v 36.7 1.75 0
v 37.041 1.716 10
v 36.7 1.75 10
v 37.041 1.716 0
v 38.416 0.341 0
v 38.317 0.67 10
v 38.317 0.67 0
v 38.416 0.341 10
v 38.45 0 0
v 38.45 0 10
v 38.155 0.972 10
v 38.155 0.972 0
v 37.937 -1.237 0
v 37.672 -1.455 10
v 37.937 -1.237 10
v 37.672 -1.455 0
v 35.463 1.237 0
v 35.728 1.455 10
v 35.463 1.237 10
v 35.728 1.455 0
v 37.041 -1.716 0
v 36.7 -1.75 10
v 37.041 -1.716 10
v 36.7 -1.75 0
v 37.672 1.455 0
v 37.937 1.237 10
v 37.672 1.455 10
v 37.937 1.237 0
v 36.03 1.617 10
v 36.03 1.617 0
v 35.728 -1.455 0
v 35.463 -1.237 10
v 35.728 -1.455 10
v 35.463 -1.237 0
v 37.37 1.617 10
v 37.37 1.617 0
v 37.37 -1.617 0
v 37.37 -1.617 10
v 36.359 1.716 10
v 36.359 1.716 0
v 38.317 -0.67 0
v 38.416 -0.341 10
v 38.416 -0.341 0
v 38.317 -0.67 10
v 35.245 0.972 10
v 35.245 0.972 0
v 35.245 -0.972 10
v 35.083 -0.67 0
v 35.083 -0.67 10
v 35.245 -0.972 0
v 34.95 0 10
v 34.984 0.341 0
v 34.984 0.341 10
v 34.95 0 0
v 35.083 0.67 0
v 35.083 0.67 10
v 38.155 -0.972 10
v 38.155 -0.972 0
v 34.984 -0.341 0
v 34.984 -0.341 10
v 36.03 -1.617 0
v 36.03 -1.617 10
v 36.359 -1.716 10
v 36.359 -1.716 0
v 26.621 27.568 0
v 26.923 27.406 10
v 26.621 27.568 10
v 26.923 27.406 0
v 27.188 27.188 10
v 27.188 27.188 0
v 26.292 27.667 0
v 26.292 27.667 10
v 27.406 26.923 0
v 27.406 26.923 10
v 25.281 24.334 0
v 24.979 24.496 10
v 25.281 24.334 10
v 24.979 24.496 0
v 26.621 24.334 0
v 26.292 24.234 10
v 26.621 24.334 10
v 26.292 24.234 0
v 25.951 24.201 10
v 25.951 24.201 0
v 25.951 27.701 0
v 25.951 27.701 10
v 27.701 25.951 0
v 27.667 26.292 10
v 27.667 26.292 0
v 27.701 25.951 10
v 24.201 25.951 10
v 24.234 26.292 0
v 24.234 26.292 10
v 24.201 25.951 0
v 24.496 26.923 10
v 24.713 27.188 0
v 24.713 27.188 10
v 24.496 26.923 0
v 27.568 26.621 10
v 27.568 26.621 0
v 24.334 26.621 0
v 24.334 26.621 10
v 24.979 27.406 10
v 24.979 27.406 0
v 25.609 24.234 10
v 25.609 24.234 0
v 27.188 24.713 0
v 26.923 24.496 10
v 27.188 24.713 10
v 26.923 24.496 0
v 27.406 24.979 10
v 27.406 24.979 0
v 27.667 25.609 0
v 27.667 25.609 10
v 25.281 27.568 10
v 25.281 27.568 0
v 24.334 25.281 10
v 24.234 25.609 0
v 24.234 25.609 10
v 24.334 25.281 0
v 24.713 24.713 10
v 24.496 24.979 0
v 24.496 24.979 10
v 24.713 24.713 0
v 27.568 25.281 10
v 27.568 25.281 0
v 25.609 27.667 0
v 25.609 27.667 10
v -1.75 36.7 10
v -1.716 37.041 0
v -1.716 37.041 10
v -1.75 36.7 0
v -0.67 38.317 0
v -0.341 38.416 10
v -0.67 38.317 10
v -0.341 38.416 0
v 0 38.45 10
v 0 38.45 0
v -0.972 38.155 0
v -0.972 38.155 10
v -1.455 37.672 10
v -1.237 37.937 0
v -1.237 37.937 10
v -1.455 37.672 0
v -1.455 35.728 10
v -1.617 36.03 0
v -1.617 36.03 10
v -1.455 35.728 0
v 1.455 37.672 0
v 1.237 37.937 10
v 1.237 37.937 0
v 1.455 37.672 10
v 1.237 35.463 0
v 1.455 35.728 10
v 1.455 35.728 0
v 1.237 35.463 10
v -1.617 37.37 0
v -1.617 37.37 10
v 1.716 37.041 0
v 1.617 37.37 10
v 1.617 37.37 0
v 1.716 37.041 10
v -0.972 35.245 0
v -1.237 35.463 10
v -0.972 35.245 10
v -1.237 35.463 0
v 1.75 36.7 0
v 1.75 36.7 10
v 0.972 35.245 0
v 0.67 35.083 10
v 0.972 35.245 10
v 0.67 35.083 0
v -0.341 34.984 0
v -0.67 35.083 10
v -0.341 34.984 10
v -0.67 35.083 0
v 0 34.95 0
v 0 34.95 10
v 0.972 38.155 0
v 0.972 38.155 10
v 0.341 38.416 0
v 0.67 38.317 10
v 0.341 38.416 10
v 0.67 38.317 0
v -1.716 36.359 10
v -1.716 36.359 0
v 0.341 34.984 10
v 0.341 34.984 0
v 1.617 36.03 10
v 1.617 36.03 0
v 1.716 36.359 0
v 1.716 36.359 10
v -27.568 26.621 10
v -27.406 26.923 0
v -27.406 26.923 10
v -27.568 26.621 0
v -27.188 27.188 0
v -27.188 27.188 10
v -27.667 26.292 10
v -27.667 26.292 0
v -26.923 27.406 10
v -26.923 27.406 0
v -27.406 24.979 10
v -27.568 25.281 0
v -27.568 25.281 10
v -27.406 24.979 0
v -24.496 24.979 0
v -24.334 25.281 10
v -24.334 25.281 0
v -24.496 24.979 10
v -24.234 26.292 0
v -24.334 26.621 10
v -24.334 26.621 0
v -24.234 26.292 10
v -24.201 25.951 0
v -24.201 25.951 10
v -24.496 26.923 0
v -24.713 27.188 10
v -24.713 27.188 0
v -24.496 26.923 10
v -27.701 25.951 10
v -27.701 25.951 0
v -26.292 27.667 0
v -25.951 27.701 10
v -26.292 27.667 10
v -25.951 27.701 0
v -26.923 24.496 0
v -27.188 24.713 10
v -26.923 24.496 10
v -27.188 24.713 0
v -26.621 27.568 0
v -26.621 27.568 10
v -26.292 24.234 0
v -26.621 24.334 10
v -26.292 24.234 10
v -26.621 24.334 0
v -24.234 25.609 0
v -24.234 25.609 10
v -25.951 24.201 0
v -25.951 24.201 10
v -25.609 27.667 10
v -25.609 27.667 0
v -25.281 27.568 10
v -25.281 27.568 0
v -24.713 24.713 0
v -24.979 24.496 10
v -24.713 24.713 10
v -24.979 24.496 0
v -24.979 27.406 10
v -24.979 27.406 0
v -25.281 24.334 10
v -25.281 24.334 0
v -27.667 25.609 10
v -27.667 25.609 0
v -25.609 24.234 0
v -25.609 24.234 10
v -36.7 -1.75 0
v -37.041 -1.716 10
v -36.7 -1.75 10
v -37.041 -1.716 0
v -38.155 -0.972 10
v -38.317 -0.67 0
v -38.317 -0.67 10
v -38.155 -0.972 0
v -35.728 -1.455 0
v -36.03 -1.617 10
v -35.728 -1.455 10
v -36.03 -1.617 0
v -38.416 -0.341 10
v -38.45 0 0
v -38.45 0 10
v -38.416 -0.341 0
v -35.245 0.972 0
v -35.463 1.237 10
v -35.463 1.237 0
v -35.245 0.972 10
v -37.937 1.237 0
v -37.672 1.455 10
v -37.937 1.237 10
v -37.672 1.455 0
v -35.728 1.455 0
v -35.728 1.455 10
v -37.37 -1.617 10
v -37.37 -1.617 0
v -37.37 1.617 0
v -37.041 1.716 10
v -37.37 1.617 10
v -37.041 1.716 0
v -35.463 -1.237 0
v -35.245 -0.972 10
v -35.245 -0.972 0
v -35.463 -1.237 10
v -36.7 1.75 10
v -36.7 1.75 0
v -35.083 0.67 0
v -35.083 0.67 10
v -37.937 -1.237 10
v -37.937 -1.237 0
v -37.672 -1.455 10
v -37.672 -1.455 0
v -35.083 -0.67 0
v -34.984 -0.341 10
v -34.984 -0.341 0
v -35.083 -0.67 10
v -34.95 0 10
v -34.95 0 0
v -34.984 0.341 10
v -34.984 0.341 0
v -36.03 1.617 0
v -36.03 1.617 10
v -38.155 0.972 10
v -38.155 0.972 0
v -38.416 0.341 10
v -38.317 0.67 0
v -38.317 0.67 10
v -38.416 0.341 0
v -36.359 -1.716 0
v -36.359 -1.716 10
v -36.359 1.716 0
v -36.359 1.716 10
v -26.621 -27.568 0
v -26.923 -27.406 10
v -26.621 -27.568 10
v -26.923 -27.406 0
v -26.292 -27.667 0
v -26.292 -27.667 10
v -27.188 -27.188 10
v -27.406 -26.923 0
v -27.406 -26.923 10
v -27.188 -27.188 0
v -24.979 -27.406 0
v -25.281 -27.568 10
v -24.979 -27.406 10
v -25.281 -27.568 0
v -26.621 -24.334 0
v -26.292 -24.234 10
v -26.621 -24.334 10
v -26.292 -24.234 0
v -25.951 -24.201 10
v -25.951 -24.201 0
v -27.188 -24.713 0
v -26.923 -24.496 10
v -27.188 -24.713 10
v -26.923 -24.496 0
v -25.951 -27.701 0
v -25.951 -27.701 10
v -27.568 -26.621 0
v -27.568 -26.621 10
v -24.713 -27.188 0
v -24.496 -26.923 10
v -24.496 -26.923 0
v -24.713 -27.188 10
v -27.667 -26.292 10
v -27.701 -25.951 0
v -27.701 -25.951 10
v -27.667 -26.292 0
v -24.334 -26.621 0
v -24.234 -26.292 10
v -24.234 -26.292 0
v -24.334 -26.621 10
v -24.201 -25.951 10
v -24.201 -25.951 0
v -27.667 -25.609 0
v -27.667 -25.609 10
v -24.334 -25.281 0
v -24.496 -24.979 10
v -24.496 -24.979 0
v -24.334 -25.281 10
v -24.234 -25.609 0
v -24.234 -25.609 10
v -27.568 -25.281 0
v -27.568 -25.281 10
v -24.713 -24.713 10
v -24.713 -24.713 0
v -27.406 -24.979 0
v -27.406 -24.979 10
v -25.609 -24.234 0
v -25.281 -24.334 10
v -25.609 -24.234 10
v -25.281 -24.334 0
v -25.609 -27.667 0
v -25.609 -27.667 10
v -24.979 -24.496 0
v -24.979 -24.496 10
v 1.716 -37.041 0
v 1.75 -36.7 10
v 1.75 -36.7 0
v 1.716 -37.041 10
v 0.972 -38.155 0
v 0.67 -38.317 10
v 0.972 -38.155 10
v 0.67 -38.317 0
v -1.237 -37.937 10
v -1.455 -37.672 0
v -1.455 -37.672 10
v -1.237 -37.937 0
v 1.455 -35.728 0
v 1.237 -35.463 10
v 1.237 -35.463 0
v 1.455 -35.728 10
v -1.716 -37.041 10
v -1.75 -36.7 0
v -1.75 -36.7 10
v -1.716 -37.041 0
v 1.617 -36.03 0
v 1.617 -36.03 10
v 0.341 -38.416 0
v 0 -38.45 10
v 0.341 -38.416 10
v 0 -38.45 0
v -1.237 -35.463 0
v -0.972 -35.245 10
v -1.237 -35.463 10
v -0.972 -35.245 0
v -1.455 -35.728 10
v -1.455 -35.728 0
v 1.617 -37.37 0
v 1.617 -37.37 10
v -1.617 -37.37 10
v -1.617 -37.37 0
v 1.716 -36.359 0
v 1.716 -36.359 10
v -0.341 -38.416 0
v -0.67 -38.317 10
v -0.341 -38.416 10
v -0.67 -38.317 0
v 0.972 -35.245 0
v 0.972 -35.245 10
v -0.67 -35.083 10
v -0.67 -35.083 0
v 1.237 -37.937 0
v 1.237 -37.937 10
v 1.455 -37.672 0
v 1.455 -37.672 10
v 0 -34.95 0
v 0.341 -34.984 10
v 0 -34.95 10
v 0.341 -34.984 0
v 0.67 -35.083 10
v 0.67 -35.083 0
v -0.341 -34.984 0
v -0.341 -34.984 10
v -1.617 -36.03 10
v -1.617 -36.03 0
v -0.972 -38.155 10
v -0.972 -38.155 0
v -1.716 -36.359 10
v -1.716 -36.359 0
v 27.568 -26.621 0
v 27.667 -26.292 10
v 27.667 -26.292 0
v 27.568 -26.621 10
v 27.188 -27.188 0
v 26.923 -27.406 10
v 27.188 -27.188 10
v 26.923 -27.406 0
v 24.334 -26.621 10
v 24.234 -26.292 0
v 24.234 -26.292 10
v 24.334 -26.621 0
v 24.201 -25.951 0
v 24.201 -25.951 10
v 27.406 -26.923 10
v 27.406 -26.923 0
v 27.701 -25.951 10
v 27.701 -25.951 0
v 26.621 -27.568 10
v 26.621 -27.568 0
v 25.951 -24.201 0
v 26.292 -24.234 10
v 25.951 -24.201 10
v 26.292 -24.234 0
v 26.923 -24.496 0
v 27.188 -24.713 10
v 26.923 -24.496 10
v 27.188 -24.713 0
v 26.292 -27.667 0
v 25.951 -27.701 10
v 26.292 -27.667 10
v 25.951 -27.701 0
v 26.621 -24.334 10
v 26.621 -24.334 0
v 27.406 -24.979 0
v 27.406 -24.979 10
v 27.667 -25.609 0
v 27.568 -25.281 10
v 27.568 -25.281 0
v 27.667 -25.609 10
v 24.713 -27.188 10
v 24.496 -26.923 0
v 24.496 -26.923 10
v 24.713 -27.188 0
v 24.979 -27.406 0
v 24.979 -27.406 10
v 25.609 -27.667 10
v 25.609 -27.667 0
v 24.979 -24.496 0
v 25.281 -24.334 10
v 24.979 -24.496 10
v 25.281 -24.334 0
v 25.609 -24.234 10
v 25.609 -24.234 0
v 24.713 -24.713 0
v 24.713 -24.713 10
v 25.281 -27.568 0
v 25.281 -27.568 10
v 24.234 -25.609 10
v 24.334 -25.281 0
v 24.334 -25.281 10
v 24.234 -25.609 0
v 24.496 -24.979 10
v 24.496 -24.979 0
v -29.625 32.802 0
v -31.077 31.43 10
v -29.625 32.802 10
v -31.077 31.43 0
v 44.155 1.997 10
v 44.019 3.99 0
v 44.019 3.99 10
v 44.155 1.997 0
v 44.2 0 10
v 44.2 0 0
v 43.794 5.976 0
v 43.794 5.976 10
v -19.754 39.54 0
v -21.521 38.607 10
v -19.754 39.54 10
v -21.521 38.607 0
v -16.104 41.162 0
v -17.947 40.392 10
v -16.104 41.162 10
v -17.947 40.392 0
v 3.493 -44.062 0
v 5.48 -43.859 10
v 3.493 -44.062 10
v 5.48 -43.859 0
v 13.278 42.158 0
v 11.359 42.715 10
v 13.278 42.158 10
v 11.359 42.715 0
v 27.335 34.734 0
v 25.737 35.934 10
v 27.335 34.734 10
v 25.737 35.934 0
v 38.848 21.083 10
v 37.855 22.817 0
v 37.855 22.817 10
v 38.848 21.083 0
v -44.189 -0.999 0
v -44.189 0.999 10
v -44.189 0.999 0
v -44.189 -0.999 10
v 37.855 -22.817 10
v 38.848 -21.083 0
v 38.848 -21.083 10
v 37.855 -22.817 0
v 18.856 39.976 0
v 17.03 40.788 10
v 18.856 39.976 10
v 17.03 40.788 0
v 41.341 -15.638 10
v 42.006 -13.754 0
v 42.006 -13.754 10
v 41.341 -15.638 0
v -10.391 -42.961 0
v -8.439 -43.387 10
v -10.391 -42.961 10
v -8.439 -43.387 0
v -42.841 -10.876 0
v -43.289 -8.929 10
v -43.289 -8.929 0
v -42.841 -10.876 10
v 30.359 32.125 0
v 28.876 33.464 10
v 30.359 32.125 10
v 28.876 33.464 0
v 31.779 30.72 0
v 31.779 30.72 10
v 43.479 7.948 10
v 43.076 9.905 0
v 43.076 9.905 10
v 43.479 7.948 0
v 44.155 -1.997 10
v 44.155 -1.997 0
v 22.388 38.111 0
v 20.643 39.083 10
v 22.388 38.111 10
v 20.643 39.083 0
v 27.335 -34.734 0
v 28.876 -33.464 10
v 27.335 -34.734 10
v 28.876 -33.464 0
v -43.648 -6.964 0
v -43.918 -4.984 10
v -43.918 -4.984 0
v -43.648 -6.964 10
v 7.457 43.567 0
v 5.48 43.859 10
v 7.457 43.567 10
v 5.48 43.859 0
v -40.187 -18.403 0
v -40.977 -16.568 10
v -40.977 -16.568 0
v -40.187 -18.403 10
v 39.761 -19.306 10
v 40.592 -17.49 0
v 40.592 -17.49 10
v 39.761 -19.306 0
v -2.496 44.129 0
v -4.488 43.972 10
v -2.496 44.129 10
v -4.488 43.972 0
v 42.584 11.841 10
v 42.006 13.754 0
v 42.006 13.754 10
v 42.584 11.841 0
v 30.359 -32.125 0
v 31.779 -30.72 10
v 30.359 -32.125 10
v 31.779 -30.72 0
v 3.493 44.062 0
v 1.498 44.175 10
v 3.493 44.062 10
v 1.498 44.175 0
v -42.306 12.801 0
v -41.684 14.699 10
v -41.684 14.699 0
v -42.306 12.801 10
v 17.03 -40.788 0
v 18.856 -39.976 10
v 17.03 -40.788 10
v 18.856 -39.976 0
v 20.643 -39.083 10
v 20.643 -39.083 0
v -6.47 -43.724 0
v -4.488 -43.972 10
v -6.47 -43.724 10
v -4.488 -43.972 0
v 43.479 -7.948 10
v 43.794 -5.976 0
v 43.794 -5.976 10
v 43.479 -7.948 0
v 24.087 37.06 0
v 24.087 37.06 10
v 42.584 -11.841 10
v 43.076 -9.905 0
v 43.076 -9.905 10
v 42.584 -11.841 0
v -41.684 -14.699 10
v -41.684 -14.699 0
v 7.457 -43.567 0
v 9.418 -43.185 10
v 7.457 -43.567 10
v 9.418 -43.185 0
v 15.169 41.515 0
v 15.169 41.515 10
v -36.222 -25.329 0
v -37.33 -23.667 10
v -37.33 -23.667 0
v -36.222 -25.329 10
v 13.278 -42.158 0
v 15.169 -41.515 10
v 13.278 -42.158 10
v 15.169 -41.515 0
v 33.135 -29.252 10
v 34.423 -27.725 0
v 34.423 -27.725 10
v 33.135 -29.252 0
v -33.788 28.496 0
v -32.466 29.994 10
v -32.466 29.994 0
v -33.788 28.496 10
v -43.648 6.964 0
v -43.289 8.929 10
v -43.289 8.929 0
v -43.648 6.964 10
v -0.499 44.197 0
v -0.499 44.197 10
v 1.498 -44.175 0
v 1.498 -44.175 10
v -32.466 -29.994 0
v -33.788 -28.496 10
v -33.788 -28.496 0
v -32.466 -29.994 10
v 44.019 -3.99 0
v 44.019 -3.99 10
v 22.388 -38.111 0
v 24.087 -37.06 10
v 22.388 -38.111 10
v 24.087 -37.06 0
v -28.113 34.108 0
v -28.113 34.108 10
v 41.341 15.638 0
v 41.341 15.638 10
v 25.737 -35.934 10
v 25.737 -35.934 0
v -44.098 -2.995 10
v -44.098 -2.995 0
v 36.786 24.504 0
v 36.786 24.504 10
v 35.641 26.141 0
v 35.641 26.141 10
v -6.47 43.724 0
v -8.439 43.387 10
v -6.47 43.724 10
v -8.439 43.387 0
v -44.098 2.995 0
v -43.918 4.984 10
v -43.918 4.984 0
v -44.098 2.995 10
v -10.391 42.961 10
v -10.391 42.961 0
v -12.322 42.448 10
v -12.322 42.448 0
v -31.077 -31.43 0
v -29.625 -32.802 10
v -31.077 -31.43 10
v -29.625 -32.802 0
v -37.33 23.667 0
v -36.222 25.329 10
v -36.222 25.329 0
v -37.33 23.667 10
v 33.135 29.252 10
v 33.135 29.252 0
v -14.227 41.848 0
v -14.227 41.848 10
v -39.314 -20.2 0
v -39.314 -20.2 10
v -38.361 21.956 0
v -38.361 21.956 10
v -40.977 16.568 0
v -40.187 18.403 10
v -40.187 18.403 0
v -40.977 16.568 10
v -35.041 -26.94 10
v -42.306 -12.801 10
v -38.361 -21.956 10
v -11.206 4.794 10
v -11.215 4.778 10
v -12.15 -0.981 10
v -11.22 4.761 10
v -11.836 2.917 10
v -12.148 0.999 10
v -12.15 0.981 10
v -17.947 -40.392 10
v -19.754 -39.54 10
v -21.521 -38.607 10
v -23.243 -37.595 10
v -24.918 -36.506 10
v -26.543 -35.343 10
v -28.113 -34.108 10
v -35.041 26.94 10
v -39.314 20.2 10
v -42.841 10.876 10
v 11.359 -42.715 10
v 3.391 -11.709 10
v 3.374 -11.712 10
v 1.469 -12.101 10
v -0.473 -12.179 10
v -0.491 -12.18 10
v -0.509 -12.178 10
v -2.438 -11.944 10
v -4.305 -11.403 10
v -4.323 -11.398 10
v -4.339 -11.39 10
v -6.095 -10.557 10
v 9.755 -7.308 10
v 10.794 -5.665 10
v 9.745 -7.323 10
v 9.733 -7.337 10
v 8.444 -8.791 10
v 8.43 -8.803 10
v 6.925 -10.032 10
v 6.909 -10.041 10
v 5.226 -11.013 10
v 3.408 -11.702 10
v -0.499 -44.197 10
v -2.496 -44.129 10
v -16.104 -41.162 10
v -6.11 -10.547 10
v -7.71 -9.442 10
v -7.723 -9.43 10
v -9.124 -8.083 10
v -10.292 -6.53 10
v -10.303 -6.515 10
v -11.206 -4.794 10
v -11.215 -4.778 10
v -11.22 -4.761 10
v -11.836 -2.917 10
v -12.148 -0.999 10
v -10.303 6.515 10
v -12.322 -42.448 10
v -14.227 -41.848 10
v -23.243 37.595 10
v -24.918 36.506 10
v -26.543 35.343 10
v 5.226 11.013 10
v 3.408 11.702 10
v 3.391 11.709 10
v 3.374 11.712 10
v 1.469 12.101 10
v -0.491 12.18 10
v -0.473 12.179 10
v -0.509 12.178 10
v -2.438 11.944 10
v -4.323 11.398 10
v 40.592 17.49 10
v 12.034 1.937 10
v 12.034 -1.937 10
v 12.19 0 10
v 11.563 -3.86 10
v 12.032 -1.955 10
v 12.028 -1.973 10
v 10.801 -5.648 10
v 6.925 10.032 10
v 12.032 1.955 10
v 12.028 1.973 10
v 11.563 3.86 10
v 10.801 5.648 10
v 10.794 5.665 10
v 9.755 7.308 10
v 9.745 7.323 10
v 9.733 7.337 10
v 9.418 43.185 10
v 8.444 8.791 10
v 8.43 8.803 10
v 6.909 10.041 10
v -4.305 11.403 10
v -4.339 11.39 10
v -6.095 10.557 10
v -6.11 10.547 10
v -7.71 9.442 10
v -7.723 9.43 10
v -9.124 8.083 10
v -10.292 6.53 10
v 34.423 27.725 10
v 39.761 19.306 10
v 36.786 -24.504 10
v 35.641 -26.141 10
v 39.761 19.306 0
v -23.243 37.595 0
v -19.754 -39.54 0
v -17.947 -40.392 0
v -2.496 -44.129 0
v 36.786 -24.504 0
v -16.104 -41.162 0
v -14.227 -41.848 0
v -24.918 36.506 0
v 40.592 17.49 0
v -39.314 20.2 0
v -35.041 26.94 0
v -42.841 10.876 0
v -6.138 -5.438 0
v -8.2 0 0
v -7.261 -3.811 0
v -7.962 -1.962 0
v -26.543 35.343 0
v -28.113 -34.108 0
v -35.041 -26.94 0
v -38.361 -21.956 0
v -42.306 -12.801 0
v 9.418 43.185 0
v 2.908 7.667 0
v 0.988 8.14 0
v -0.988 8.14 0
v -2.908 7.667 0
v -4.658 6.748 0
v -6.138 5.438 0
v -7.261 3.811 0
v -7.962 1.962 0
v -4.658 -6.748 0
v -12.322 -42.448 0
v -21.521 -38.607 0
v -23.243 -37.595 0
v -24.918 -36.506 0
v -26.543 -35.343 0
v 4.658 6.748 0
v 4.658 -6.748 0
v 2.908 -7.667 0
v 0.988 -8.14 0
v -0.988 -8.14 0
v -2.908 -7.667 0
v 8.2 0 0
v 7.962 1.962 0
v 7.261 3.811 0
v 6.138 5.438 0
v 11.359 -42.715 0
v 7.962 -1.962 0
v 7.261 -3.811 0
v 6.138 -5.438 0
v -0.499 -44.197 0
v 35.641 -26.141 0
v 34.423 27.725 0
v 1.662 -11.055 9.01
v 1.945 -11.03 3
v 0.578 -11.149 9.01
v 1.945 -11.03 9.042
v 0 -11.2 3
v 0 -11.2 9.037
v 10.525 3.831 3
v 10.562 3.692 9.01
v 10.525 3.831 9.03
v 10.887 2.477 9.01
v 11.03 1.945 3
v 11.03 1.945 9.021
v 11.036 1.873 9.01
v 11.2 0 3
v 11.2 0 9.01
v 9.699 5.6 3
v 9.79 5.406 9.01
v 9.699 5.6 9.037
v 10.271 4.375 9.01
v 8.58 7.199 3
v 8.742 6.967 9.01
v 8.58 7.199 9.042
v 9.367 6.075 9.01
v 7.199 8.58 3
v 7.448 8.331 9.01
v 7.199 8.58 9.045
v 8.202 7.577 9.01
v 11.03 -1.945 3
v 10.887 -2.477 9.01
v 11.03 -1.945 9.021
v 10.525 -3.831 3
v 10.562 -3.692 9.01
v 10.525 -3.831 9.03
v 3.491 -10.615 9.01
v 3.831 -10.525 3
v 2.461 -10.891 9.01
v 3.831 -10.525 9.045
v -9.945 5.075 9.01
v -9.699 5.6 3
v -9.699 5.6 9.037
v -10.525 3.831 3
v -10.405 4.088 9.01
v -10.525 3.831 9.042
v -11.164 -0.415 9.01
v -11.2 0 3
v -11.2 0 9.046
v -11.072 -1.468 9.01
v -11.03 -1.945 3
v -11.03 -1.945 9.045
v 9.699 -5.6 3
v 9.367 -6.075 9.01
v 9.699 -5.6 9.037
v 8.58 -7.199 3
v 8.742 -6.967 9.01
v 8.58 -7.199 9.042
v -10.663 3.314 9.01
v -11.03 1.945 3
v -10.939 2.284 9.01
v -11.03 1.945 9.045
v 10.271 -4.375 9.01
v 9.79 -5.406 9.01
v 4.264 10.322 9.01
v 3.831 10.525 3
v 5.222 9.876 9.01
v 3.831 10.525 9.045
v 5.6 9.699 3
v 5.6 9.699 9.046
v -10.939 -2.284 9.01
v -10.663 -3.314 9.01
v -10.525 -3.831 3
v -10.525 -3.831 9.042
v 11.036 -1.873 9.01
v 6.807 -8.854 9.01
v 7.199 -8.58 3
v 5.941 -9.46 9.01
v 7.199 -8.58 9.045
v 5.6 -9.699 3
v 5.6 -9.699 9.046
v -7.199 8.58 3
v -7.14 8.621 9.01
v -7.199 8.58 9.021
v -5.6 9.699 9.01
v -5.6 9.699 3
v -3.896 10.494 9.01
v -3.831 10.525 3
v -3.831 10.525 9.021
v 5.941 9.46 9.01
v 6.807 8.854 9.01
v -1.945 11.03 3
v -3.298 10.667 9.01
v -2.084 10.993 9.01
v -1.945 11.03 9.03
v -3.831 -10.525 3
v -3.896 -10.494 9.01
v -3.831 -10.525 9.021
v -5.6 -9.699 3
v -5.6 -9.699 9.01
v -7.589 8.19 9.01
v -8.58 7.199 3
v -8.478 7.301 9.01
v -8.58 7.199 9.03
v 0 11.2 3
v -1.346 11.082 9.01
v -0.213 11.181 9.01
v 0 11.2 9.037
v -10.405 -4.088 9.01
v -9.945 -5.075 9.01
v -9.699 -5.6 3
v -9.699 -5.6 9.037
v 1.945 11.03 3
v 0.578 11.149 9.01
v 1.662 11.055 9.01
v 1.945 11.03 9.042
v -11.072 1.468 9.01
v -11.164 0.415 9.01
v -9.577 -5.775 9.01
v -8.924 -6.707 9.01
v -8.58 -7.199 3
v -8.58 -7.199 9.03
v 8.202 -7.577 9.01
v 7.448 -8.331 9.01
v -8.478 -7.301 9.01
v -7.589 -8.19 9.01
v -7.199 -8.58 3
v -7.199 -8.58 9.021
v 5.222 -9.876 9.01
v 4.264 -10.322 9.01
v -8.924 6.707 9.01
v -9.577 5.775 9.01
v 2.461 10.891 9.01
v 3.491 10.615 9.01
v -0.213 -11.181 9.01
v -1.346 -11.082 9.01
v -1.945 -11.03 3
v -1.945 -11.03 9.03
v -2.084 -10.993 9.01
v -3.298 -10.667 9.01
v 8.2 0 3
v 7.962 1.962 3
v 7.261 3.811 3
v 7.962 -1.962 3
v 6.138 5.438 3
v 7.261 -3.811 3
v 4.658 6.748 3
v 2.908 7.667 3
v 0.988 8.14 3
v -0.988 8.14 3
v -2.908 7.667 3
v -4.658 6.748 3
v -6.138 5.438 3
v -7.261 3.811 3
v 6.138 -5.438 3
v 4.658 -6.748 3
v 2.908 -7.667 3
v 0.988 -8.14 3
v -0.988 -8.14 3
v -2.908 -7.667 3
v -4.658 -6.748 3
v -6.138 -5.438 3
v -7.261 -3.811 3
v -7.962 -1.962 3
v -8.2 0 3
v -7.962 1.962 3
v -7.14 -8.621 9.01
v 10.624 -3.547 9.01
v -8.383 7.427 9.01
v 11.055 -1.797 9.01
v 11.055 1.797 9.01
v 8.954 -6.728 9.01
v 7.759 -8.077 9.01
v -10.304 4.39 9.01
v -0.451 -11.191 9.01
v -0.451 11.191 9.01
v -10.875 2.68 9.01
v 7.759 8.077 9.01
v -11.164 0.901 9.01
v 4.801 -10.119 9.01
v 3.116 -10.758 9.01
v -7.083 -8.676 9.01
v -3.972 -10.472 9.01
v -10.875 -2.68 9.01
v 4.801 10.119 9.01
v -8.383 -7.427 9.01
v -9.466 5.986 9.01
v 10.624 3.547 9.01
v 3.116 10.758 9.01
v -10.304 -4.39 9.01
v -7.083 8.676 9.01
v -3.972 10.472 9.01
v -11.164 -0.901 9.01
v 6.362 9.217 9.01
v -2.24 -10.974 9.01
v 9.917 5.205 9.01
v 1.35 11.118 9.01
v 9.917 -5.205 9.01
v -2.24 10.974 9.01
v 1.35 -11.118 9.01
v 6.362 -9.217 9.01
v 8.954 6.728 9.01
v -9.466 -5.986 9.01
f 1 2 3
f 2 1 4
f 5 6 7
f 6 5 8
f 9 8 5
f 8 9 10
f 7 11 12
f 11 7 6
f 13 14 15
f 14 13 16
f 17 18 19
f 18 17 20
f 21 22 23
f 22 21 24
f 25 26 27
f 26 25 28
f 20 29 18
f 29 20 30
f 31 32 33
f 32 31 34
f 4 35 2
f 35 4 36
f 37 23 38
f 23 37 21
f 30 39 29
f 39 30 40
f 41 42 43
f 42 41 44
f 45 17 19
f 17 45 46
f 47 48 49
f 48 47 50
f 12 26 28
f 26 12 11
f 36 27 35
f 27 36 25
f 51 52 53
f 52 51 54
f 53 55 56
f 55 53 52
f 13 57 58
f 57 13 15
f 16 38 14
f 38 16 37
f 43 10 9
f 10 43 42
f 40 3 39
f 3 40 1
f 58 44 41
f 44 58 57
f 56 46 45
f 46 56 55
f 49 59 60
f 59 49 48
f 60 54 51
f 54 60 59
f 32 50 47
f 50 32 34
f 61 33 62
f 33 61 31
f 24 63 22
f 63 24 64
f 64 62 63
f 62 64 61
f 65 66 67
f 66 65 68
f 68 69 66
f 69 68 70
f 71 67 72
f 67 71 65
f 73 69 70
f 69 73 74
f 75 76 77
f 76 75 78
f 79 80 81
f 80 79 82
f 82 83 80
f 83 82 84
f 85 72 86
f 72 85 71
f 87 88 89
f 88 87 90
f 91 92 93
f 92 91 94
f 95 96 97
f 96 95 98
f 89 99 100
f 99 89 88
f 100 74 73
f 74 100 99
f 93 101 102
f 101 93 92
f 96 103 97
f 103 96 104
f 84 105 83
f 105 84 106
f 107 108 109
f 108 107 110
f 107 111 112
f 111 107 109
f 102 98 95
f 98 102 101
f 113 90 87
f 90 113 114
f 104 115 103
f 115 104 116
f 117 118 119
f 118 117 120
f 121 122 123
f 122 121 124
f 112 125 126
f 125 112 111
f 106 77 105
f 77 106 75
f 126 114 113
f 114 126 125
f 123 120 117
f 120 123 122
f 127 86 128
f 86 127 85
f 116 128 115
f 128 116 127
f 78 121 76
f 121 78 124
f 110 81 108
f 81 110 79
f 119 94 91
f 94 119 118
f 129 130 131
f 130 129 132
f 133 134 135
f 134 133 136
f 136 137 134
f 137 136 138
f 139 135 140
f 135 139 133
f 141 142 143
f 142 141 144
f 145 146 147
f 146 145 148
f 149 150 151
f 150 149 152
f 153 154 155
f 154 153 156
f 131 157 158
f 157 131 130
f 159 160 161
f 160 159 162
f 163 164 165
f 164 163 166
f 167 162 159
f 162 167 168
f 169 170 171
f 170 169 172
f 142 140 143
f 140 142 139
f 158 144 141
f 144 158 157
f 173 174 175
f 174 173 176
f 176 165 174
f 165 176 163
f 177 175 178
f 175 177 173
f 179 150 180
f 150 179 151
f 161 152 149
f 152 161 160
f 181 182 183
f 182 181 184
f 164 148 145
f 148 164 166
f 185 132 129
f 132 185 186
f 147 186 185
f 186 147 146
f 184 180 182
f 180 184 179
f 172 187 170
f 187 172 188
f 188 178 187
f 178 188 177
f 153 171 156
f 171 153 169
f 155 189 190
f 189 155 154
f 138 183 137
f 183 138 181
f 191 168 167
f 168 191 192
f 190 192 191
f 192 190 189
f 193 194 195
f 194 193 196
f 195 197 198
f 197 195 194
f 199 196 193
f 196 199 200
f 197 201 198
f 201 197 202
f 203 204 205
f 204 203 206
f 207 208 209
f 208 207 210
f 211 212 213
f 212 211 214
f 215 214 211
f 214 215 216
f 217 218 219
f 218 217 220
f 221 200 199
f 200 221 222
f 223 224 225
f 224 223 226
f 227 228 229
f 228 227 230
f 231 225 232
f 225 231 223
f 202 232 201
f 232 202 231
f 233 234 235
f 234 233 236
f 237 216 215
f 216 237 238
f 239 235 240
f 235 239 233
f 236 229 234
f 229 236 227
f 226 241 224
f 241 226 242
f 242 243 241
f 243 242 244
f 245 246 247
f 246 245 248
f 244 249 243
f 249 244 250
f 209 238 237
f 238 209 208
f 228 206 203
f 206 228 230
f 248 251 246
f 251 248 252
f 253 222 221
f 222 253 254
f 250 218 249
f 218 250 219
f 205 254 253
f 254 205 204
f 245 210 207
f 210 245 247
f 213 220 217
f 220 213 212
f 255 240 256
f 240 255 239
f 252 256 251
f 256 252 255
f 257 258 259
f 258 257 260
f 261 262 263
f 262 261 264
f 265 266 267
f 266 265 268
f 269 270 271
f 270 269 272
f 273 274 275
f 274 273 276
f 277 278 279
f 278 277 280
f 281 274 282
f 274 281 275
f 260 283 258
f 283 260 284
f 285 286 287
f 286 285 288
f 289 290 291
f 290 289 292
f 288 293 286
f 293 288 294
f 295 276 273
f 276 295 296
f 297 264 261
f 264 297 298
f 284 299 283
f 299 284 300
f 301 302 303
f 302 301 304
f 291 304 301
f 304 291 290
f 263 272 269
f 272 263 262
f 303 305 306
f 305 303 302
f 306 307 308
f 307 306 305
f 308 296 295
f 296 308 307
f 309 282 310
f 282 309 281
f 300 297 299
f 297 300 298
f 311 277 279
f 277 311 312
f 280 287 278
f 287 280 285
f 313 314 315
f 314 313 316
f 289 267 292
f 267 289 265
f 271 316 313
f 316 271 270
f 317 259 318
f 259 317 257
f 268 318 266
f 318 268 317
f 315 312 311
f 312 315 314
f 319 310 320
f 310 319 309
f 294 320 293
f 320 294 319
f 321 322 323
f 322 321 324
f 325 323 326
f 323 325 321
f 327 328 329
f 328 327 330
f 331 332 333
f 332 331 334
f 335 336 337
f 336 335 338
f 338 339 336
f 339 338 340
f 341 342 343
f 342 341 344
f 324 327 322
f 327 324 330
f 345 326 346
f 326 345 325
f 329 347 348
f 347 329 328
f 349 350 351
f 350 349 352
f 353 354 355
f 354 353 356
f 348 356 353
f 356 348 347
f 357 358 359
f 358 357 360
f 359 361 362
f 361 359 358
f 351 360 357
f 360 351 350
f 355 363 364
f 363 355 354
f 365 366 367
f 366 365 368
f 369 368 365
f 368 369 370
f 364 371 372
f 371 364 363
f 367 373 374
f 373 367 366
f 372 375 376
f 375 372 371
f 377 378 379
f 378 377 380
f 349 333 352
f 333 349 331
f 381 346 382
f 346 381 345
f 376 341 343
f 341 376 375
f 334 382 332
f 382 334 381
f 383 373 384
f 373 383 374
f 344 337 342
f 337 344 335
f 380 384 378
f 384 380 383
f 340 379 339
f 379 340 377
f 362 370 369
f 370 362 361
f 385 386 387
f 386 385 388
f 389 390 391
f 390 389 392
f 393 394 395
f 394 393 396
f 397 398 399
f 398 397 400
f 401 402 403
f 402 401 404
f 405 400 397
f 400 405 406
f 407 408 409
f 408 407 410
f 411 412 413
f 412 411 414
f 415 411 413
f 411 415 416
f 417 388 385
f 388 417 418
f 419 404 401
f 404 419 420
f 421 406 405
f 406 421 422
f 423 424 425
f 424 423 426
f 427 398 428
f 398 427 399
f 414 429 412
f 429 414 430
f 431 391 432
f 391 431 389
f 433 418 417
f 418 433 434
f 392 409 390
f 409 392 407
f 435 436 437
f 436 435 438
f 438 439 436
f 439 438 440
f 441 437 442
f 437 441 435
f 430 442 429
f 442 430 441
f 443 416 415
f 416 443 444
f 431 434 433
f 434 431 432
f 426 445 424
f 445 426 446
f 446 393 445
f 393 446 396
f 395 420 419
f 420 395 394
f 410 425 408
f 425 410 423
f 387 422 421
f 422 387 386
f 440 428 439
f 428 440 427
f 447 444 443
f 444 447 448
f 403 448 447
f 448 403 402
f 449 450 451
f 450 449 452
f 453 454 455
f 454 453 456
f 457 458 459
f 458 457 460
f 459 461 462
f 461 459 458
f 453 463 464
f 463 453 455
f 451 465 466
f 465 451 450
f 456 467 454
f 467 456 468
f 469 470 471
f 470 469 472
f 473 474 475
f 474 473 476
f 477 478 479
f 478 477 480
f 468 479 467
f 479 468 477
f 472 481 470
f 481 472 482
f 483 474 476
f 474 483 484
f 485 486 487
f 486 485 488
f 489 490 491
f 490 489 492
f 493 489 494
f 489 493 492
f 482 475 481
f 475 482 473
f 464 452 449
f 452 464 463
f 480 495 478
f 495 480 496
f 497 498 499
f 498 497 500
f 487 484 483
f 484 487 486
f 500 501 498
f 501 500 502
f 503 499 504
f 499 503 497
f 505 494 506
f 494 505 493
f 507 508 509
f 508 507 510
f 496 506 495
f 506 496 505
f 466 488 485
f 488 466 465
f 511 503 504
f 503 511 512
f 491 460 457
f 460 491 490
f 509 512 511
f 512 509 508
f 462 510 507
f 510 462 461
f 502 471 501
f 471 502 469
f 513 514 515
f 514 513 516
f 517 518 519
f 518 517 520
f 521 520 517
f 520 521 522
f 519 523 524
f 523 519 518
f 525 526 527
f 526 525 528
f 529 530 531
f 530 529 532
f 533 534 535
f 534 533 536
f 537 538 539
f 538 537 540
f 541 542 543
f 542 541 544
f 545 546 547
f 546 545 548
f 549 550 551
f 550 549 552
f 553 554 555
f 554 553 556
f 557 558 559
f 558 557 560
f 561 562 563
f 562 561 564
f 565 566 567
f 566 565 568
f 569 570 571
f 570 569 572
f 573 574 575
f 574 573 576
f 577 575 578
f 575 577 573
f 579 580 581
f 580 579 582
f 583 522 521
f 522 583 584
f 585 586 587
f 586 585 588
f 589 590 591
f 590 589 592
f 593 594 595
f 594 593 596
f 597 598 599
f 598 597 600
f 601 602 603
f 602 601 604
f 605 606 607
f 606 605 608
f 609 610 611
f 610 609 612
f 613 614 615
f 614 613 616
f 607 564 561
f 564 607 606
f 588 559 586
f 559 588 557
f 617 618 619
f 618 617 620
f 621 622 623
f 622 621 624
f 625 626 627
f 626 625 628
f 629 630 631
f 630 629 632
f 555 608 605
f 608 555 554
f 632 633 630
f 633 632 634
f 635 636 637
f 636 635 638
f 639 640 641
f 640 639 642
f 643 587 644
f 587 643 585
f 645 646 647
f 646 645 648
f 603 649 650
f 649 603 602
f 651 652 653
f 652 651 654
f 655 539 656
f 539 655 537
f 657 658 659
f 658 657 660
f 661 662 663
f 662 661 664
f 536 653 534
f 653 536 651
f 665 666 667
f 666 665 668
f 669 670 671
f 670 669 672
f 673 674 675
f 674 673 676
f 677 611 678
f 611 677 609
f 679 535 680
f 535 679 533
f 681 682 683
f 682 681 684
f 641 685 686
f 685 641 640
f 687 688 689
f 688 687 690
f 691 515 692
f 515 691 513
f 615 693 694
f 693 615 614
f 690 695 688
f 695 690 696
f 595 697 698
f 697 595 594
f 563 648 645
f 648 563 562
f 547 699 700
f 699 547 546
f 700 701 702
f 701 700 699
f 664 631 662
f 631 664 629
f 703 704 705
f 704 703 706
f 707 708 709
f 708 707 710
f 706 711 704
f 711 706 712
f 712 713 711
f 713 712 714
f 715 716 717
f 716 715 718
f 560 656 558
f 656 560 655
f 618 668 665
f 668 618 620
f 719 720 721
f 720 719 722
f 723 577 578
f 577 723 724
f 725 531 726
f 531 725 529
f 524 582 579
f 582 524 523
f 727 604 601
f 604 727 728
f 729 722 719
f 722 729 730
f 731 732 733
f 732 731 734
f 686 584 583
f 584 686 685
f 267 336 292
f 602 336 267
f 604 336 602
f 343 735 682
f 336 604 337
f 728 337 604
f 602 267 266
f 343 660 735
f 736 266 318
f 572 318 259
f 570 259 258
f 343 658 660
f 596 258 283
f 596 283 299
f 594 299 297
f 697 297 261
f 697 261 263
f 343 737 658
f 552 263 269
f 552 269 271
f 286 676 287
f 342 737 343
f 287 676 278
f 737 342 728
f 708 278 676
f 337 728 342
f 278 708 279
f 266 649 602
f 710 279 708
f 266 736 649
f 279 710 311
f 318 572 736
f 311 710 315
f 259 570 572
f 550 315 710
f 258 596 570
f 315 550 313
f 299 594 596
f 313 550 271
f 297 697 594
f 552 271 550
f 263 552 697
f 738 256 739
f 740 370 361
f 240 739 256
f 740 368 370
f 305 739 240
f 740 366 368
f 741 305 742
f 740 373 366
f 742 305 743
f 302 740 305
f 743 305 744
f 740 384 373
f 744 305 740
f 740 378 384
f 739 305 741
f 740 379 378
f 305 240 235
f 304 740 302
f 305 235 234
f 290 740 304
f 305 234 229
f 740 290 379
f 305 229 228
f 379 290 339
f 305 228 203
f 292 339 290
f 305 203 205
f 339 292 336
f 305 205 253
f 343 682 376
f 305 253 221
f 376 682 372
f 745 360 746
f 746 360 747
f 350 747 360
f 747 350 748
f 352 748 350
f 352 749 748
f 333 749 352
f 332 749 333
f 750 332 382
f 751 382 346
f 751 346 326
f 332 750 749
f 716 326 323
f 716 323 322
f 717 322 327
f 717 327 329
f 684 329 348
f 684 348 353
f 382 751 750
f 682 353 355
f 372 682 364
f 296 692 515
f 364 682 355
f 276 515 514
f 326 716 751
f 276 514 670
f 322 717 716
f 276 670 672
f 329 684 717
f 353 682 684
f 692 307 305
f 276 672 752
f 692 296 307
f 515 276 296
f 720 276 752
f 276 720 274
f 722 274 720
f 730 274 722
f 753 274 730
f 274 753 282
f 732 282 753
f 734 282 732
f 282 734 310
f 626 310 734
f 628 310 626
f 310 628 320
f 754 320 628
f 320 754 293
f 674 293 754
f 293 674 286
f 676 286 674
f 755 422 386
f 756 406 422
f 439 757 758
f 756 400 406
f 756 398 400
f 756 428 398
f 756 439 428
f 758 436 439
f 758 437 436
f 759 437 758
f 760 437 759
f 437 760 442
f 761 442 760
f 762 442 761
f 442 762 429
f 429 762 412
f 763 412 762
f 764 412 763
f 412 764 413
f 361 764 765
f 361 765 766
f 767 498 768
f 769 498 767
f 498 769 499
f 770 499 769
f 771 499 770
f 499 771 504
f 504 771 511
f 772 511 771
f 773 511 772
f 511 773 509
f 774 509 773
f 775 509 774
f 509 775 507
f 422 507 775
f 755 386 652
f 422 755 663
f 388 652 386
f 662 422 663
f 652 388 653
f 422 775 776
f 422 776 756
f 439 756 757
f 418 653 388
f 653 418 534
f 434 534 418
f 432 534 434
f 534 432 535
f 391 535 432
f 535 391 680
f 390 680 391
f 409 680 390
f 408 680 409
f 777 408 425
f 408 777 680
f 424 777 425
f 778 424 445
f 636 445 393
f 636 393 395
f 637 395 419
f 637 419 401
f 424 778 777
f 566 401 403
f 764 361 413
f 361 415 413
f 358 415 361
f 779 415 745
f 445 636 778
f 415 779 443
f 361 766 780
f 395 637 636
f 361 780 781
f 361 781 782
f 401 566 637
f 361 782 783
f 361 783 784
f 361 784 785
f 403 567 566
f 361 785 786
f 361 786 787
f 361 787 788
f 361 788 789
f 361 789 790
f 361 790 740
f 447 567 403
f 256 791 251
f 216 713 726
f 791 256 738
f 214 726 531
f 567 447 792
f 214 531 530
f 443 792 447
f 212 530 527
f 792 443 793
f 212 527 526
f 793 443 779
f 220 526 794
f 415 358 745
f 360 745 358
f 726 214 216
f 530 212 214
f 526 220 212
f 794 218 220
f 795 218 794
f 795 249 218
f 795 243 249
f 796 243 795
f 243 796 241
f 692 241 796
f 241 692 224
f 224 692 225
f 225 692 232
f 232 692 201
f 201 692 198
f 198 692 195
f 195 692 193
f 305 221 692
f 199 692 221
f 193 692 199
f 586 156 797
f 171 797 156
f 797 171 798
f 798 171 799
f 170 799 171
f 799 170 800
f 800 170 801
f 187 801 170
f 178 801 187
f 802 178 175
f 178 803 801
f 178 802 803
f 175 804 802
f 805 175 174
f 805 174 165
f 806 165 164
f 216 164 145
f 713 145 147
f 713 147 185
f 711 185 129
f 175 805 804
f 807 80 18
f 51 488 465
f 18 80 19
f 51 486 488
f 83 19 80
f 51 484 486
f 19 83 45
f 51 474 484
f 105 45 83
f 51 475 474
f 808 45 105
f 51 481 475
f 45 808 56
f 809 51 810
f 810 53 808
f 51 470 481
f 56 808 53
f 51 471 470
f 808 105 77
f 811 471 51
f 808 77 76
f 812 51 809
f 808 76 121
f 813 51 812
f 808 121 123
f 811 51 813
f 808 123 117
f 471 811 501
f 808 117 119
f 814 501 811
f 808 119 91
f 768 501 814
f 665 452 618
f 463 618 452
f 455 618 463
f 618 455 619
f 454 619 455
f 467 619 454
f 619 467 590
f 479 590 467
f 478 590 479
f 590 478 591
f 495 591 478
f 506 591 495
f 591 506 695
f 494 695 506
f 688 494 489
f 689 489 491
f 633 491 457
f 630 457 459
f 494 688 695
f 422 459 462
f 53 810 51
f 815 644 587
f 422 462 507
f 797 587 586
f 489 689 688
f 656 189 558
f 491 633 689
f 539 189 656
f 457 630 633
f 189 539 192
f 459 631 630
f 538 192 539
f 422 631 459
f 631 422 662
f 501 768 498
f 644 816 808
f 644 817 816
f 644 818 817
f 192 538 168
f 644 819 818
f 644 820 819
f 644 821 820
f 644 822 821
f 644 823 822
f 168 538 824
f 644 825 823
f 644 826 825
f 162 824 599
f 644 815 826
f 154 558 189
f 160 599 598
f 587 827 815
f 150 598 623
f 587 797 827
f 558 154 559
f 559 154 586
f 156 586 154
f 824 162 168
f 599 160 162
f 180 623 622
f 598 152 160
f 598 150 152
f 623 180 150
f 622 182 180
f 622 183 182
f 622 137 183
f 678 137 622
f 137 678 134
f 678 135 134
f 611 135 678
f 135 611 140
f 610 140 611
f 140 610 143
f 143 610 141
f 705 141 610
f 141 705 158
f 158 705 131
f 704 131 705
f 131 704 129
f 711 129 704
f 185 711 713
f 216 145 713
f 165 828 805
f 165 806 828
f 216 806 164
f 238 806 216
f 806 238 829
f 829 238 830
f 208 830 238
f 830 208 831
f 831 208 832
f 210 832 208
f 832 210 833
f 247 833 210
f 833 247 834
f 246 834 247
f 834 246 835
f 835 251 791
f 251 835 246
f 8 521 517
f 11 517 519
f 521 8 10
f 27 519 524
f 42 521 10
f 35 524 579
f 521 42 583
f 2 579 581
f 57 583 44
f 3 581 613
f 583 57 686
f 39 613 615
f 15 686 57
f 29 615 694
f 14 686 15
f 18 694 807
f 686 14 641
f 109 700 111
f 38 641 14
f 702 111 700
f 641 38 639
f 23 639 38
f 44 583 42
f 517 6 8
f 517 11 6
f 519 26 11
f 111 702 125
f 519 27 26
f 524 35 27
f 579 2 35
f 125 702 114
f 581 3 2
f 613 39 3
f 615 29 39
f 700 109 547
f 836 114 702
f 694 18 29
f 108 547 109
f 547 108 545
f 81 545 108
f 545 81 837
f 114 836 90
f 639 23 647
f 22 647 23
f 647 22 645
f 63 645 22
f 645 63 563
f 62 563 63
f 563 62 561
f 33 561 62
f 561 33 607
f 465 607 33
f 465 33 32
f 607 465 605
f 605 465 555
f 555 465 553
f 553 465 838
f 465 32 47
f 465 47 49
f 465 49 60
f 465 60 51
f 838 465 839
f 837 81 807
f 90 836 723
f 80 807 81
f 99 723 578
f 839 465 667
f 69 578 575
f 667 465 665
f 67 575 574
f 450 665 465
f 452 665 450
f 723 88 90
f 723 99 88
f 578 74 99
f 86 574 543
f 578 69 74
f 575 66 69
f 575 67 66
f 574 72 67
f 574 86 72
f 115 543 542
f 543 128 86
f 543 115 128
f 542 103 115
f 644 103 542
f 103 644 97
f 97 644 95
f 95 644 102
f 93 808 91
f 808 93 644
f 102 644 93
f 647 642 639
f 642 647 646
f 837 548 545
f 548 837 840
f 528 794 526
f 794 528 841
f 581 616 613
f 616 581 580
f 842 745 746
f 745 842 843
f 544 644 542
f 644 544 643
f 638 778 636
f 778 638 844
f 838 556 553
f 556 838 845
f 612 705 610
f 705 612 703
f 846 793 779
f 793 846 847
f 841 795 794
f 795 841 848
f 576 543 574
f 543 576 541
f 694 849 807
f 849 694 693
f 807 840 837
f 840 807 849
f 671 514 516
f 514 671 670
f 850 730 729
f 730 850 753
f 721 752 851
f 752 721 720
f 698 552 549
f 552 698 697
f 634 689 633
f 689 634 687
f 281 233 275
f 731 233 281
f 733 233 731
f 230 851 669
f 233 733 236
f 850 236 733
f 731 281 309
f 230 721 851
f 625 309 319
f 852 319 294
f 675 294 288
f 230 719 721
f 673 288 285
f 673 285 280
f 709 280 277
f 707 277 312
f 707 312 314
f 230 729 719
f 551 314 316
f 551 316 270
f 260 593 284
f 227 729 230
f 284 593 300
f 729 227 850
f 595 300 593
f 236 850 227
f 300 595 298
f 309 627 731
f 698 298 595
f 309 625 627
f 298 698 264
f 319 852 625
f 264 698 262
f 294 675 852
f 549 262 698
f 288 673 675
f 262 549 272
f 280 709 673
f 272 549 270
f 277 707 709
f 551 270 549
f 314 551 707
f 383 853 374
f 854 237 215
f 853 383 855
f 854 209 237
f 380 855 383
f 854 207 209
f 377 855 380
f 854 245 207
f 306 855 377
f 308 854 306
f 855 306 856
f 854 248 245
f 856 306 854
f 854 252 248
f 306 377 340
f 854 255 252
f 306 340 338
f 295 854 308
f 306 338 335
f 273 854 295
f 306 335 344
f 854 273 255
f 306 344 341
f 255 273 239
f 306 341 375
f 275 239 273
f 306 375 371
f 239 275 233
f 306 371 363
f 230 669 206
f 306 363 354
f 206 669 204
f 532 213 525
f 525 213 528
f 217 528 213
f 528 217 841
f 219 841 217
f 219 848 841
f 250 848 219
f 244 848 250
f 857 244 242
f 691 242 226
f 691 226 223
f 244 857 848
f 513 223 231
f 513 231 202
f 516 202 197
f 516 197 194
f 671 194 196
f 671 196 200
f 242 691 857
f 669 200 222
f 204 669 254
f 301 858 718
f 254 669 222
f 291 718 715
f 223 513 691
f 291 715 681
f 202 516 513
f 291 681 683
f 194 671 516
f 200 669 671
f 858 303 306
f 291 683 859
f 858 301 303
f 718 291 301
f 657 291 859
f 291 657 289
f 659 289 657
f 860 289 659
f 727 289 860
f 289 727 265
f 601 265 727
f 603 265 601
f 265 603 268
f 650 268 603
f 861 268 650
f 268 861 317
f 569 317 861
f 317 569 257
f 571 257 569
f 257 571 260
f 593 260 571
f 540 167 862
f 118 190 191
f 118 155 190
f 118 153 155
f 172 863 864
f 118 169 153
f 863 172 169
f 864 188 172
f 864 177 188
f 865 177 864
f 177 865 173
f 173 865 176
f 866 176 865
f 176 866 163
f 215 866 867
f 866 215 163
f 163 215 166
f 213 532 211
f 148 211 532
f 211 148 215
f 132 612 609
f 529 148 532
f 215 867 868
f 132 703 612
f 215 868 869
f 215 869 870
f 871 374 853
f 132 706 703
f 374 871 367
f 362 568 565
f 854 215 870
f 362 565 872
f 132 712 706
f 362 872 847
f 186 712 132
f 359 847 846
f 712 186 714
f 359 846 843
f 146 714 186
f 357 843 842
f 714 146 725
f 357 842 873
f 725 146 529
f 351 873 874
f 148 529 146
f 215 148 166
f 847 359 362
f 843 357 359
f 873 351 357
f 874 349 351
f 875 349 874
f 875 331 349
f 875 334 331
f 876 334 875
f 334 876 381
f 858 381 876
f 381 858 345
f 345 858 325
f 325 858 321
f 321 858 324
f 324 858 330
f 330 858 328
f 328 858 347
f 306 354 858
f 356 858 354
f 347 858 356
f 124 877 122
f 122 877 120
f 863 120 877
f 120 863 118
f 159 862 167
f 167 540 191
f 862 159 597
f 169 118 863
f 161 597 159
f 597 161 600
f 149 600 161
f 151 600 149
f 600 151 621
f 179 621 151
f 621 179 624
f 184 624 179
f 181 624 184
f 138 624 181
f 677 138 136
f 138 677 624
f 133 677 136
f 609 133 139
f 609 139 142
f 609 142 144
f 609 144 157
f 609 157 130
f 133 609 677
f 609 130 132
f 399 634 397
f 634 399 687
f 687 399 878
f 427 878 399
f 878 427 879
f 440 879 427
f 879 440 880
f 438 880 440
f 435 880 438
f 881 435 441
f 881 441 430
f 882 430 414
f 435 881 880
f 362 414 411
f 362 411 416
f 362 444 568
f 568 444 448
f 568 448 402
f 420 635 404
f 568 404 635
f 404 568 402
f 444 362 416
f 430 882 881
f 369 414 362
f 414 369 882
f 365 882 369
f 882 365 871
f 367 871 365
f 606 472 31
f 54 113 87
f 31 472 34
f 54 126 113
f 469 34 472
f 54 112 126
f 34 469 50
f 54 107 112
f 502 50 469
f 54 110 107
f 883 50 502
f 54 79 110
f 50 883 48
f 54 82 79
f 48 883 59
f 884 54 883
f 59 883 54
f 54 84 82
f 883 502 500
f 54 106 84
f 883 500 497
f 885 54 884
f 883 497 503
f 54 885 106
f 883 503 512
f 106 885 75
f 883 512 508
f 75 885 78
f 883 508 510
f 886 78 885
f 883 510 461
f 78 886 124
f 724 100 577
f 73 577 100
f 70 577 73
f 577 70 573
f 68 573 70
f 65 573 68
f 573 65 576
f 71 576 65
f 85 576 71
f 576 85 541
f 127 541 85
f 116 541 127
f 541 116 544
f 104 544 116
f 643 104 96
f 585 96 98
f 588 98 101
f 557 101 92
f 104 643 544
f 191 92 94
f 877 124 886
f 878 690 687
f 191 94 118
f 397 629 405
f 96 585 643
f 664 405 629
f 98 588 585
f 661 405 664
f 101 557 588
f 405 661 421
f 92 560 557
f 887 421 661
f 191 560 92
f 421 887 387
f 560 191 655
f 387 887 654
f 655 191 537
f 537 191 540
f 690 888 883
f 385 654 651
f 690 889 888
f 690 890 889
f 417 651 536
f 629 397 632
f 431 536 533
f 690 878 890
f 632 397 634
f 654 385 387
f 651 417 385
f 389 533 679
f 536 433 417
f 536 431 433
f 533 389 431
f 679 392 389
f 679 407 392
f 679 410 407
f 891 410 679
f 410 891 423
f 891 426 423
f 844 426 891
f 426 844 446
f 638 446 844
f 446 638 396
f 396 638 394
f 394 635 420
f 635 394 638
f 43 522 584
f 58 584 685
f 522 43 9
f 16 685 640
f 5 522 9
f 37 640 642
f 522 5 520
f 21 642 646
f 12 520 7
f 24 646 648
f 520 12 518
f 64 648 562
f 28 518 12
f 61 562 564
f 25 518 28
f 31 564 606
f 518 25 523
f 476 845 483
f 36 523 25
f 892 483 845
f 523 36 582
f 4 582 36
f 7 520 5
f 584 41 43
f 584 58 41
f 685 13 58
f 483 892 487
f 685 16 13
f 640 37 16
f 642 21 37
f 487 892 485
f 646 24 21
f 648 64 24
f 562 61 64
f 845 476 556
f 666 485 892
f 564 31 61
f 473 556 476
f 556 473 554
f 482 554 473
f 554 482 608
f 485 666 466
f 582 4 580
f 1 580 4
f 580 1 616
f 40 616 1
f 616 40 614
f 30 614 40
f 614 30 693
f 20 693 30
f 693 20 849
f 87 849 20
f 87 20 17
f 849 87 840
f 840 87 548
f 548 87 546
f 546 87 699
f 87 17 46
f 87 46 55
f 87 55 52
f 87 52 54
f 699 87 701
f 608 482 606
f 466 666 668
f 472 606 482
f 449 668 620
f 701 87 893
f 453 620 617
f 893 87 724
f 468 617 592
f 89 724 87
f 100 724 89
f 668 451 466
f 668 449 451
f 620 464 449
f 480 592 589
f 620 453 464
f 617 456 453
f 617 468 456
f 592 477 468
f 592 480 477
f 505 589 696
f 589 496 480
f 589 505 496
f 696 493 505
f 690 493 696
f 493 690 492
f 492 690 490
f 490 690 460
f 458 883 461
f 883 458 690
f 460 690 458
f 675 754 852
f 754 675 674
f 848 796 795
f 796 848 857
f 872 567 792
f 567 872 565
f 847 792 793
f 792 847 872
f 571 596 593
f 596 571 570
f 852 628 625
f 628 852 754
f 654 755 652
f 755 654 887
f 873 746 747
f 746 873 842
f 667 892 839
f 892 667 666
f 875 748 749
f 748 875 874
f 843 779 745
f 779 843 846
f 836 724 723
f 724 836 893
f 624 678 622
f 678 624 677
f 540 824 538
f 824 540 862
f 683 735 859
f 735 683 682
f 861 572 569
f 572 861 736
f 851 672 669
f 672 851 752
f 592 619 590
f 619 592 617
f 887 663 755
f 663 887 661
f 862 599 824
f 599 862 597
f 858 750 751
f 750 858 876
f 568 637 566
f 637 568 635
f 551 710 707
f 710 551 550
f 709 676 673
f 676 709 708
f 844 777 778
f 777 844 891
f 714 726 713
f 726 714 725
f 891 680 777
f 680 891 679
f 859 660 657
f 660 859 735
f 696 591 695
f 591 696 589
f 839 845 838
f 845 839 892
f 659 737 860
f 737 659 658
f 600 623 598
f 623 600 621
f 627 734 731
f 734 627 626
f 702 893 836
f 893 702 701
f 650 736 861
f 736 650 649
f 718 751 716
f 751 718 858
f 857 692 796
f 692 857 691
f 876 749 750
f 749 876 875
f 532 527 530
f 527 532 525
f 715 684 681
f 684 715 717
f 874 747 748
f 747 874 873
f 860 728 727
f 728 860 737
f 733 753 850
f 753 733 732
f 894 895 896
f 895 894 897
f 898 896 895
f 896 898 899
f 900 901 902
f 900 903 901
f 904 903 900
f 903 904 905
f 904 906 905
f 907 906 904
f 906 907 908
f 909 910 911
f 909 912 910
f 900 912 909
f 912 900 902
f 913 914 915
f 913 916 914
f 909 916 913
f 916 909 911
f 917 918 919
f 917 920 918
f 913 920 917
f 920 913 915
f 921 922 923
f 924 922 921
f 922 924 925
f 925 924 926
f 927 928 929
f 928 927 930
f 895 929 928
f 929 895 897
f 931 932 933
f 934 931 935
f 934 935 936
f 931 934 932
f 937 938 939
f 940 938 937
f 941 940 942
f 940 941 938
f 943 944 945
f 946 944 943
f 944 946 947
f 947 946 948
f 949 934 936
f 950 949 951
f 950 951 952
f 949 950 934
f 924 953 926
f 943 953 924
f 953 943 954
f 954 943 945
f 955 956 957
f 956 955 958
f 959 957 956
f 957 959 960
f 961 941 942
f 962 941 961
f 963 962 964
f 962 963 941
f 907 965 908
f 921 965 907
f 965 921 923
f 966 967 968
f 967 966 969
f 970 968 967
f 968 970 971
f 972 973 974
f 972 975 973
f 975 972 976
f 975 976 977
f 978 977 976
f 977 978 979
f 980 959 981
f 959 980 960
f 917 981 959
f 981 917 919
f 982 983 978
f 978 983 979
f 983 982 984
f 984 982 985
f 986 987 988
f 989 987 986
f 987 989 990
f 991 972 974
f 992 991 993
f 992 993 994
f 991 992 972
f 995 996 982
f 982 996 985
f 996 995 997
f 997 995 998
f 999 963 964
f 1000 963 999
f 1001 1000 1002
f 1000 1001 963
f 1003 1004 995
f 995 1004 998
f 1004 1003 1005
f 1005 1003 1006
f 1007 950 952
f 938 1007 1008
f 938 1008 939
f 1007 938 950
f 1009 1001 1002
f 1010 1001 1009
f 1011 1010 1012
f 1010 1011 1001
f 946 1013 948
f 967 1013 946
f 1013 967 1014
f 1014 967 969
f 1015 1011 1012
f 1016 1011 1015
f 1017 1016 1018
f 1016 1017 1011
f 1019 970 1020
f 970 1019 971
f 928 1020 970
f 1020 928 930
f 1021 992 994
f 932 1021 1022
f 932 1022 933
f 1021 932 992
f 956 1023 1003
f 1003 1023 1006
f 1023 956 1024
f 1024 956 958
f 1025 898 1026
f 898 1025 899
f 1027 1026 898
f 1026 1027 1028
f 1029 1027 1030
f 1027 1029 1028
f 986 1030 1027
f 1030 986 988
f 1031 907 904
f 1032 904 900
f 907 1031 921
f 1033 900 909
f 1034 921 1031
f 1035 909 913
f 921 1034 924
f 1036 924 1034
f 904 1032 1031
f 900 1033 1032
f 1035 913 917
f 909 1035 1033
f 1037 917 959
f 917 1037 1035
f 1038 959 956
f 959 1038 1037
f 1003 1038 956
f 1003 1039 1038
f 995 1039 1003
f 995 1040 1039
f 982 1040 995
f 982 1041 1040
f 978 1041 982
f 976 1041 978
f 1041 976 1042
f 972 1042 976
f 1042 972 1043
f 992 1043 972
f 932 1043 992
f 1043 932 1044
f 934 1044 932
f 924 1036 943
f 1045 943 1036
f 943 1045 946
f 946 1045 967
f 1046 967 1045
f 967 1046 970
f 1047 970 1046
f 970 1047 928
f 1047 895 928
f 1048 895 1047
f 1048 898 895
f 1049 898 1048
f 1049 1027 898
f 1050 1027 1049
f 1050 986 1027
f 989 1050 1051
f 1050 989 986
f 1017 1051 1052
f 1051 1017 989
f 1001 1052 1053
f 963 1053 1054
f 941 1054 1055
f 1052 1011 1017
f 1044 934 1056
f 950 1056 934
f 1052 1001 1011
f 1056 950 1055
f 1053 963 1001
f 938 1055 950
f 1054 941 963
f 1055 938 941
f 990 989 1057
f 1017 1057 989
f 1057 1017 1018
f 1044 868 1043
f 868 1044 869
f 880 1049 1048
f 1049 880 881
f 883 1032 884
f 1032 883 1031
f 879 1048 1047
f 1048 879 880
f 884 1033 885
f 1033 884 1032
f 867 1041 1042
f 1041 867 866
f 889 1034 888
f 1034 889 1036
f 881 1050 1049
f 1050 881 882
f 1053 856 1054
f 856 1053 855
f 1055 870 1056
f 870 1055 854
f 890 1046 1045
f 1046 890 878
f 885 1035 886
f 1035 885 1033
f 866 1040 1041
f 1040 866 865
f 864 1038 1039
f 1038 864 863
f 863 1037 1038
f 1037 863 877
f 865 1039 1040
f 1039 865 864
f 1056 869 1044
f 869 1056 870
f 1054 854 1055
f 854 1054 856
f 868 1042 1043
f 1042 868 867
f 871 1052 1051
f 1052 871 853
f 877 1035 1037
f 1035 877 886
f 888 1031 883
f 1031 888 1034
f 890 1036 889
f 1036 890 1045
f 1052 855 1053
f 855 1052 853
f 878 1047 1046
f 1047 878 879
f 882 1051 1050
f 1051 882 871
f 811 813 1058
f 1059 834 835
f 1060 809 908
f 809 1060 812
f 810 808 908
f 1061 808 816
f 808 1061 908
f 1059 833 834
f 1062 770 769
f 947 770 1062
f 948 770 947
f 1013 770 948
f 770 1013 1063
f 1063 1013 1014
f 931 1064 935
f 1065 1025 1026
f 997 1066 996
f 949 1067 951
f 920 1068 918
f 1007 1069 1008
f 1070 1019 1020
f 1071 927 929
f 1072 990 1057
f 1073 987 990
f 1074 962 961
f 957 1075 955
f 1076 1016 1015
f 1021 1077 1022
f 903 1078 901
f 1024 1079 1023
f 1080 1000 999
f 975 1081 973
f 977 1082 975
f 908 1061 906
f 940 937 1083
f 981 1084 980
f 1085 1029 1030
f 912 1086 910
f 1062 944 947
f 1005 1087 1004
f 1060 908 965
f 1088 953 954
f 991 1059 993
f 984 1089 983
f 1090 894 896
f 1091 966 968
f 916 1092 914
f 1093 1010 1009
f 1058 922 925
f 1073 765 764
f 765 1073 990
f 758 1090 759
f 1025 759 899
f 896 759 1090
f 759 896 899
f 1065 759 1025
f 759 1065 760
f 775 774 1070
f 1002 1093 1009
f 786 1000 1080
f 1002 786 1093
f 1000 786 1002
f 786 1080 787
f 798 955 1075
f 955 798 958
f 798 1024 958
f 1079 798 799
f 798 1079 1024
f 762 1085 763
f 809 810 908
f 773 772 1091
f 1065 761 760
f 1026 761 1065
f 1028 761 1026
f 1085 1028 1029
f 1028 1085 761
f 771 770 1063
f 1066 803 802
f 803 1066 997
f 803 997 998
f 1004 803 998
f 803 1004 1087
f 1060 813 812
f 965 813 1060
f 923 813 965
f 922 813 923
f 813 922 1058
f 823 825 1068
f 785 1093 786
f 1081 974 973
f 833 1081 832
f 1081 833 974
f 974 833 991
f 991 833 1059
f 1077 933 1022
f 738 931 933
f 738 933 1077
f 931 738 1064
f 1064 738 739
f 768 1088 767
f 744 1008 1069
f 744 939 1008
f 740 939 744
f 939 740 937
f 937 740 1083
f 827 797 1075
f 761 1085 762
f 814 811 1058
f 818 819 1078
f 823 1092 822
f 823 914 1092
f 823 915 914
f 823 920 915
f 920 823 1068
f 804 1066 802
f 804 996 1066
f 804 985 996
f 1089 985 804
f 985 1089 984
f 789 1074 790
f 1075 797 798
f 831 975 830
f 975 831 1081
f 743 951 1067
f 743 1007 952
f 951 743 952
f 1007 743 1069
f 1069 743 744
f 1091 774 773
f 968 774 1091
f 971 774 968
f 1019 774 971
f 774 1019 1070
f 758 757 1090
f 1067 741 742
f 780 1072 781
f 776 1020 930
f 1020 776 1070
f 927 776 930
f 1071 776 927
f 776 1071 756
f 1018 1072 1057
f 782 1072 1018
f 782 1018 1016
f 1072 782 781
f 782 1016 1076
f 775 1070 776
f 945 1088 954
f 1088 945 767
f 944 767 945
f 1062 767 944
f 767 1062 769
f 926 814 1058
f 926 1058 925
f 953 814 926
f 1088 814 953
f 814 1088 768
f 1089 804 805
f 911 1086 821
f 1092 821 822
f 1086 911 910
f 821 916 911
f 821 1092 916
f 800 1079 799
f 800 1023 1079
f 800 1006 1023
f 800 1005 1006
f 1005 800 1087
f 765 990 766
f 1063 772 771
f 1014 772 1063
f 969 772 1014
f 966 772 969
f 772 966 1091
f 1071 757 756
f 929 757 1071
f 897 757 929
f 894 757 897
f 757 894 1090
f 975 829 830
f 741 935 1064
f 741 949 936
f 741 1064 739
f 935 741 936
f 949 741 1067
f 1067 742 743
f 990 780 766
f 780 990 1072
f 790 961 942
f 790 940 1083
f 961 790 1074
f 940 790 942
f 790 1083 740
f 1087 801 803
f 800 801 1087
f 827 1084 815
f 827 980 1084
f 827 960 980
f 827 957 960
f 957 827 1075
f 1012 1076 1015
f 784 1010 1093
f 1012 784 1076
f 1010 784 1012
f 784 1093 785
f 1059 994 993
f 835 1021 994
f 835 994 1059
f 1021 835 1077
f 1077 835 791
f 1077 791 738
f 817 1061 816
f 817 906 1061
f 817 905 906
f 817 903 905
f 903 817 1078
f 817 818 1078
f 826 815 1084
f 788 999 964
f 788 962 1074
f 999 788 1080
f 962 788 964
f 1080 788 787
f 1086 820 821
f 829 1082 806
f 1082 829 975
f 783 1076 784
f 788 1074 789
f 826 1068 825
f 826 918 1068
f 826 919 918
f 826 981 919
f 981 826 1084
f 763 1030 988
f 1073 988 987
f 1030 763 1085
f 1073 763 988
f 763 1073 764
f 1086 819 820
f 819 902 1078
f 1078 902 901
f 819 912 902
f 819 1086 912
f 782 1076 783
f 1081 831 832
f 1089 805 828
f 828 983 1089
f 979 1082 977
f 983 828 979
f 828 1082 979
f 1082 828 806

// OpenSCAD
$fa = 1;
bearing_height = 7;
bearing_diameter = 58.4;

beargin_608ZZ_diamter = 22.4; // 8x22x7

beargin_608ZZ_radius = beargin_608ZZ_diamter/2;

bearing_radius = bearing_diameter/2;
bearing_radius_edge = (beargin_608ZZ_diamter/2)-3;
mount_width = 15;
mount_radius = bearing_radius + mount_width ;
mount_screwhole_radius = 3.5/2;

difference() 
{
    cylinder(h = bearing_height + 3, r = mount_radius);
    translate([0,0,3]) cylinder(h = bearing_height+0.01, r = beargin_608ZZ_radius);
    
    for(rz = [0: 45 : 360])
    {
        rotate([0,0,rz]) translate([bearing_radius+(mount_width / 2),0,-0.1]) cylinder($fn = 32, h = 20, r = mount_screwhole_radius );
    }
    
    translate([0,0,-0.1]) cylinder(h = 20, r = bearing_radius_edge);
    
    translate([0,0,bearing_height +  3 - 0.99]) cylinder(h = 1, r1 = beargin_608ZZ_radius, r2 = beargin_608ZZ_radius+1);
}
